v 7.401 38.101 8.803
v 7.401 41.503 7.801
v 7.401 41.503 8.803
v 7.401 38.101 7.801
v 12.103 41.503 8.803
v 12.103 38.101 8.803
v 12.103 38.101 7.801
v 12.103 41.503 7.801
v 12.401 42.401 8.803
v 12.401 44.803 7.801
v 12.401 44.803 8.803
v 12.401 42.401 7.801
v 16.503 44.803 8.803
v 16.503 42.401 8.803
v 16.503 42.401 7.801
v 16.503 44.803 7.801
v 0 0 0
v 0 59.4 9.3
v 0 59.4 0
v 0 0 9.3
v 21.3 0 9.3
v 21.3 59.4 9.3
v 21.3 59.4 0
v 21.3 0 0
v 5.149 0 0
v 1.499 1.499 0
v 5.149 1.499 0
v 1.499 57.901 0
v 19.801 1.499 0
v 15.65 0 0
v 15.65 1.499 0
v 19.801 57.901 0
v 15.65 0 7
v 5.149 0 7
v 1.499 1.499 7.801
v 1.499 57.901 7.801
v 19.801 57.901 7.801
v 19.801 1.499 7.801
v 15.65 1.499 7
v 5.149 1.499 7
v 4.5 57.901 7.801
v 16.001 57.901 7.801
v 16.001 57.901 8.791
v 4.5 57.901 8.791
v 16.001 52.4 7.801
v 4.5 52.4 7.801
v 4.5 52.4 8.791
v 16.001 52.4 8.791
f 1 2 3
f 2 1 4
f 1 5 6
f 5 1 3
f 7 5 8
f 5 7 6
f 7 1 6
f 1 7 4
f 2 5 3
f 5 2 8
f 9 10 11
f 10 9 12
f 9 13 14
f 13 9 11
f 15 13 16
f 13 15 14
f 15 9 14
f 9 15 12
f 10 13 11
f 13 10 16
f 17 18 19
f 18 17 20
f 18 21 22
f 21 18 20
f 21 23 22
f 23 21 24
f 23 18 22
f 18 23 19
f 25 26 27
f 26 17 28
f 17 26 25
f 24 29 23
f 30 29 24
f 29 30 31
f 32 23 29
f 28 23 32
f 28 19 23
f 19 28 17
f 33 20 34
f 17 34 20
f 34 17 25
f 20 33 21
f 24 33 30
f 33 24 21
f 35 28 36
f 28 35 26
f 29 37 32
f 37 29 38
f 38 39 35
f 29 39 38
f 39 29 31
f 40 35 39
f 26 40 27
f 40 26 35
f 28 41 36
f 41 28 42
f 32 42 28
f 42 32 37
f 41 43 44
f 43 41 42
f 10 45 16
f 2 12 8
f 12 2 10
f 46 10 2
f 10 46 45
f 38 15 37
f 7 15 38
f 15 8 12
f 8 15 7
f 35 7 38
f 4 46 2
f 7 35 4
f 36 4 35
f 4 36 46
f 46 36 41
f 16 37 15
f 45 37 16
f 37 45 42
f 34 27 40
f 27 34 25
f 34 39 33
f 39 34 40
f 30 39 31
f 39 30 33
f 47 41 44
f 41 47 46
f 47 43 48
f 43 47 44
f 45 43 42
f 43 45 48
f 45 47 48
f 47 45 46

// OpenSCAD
innerSize=[17.3,55.4,5.3];

/* [Others] */
wallThickness = 2.0;

// show some Examples
showExamples=true;

// ---------------------------------------------------------------------------------------------------------
// do not need to modify anything below here
// ---------------------------------------------------------------------------------------------------------
/* [Hidden] */

extraGap=0.1;
printerWobble=0.501;
//printerWobble=0.01;

printerWobbleXY   = printerWobble * [1,1,0];
printerWobbleXYZ  = printerWobble * [1,1,1];
printerWobbleXYZ2 = printerWobble * [2,2,2];

wallThicknessXY   = wallThickness * [1,1,0];
wallThicknessXYZ  = wallThickness * [1,1,1];
wallThicknessXYZ2 = wallThickness * [2,2,2];

$fn=20;



housing();



module housing(){
	outerSize=innerSize + wallThicknessXYZ2 ;
	
	difference(){
		cube(outerSize);
		translate(wallThicknessXY  - printerWobbleXYZ ) cube(innerSize + printerWobbleXYZ2);
		translate(wallThicknessXYZ - printerWobbleXYZ ) cube(innerSize + printerWobbleXYZ2);

		// Cable outlet
		cableSize=[10,2*wallThickness,7];
		translate([outerSize[0]/2-cableSize[0]/2,-0.01,0]- printerWobbleXYZ )            cube(cableSize+printerWobbleXYZ);

		translate(wallThicknessXYZ){
			// Antenna outlet
			antennaSize=[11,5,1];
			translate(	innerSize
						+ printerWobbleXYZ
						+ [-antennaSize[0]-3.8,-antennaSize[1],-0.01]- printerWobbleXYZ
)
			            cube(antennaSize+printerWobbleXYZ);
		}
		
		translate(wallThicknessXYZ
					+printerWobbleXYZ
					+[0,0,innerSize[2]-3.2]
		){
			h=1.7;
			h2=3.2;
			// Spulen vom Anschlus richtung Antenne
			translate([12,7,0]) 		cube( printerWobbleXYZ2 + [4,3,h]);

			//Chip
			translate([2.1,16,0]) 		cube( printerWobbleXYZ2 + [9,9,h]);

			translate([1,30.7,0]) 		cube( printerWobbleXYZ2 + [1.5,3.2,h]);
			translate([11.2,30.7,0]) 	cube( printerWobbleXYZ2 + [1.5,3.2,h]);

			translate([4.9,35.6,0]) 	cube( printerWobbleXYZ2 + [3.7,2.4,h2]);

			translate([9.9,39.9,0]) 	cube( printerWobbleXYZ2 + [3.1,1.4,h2]);

		}
	}
}
